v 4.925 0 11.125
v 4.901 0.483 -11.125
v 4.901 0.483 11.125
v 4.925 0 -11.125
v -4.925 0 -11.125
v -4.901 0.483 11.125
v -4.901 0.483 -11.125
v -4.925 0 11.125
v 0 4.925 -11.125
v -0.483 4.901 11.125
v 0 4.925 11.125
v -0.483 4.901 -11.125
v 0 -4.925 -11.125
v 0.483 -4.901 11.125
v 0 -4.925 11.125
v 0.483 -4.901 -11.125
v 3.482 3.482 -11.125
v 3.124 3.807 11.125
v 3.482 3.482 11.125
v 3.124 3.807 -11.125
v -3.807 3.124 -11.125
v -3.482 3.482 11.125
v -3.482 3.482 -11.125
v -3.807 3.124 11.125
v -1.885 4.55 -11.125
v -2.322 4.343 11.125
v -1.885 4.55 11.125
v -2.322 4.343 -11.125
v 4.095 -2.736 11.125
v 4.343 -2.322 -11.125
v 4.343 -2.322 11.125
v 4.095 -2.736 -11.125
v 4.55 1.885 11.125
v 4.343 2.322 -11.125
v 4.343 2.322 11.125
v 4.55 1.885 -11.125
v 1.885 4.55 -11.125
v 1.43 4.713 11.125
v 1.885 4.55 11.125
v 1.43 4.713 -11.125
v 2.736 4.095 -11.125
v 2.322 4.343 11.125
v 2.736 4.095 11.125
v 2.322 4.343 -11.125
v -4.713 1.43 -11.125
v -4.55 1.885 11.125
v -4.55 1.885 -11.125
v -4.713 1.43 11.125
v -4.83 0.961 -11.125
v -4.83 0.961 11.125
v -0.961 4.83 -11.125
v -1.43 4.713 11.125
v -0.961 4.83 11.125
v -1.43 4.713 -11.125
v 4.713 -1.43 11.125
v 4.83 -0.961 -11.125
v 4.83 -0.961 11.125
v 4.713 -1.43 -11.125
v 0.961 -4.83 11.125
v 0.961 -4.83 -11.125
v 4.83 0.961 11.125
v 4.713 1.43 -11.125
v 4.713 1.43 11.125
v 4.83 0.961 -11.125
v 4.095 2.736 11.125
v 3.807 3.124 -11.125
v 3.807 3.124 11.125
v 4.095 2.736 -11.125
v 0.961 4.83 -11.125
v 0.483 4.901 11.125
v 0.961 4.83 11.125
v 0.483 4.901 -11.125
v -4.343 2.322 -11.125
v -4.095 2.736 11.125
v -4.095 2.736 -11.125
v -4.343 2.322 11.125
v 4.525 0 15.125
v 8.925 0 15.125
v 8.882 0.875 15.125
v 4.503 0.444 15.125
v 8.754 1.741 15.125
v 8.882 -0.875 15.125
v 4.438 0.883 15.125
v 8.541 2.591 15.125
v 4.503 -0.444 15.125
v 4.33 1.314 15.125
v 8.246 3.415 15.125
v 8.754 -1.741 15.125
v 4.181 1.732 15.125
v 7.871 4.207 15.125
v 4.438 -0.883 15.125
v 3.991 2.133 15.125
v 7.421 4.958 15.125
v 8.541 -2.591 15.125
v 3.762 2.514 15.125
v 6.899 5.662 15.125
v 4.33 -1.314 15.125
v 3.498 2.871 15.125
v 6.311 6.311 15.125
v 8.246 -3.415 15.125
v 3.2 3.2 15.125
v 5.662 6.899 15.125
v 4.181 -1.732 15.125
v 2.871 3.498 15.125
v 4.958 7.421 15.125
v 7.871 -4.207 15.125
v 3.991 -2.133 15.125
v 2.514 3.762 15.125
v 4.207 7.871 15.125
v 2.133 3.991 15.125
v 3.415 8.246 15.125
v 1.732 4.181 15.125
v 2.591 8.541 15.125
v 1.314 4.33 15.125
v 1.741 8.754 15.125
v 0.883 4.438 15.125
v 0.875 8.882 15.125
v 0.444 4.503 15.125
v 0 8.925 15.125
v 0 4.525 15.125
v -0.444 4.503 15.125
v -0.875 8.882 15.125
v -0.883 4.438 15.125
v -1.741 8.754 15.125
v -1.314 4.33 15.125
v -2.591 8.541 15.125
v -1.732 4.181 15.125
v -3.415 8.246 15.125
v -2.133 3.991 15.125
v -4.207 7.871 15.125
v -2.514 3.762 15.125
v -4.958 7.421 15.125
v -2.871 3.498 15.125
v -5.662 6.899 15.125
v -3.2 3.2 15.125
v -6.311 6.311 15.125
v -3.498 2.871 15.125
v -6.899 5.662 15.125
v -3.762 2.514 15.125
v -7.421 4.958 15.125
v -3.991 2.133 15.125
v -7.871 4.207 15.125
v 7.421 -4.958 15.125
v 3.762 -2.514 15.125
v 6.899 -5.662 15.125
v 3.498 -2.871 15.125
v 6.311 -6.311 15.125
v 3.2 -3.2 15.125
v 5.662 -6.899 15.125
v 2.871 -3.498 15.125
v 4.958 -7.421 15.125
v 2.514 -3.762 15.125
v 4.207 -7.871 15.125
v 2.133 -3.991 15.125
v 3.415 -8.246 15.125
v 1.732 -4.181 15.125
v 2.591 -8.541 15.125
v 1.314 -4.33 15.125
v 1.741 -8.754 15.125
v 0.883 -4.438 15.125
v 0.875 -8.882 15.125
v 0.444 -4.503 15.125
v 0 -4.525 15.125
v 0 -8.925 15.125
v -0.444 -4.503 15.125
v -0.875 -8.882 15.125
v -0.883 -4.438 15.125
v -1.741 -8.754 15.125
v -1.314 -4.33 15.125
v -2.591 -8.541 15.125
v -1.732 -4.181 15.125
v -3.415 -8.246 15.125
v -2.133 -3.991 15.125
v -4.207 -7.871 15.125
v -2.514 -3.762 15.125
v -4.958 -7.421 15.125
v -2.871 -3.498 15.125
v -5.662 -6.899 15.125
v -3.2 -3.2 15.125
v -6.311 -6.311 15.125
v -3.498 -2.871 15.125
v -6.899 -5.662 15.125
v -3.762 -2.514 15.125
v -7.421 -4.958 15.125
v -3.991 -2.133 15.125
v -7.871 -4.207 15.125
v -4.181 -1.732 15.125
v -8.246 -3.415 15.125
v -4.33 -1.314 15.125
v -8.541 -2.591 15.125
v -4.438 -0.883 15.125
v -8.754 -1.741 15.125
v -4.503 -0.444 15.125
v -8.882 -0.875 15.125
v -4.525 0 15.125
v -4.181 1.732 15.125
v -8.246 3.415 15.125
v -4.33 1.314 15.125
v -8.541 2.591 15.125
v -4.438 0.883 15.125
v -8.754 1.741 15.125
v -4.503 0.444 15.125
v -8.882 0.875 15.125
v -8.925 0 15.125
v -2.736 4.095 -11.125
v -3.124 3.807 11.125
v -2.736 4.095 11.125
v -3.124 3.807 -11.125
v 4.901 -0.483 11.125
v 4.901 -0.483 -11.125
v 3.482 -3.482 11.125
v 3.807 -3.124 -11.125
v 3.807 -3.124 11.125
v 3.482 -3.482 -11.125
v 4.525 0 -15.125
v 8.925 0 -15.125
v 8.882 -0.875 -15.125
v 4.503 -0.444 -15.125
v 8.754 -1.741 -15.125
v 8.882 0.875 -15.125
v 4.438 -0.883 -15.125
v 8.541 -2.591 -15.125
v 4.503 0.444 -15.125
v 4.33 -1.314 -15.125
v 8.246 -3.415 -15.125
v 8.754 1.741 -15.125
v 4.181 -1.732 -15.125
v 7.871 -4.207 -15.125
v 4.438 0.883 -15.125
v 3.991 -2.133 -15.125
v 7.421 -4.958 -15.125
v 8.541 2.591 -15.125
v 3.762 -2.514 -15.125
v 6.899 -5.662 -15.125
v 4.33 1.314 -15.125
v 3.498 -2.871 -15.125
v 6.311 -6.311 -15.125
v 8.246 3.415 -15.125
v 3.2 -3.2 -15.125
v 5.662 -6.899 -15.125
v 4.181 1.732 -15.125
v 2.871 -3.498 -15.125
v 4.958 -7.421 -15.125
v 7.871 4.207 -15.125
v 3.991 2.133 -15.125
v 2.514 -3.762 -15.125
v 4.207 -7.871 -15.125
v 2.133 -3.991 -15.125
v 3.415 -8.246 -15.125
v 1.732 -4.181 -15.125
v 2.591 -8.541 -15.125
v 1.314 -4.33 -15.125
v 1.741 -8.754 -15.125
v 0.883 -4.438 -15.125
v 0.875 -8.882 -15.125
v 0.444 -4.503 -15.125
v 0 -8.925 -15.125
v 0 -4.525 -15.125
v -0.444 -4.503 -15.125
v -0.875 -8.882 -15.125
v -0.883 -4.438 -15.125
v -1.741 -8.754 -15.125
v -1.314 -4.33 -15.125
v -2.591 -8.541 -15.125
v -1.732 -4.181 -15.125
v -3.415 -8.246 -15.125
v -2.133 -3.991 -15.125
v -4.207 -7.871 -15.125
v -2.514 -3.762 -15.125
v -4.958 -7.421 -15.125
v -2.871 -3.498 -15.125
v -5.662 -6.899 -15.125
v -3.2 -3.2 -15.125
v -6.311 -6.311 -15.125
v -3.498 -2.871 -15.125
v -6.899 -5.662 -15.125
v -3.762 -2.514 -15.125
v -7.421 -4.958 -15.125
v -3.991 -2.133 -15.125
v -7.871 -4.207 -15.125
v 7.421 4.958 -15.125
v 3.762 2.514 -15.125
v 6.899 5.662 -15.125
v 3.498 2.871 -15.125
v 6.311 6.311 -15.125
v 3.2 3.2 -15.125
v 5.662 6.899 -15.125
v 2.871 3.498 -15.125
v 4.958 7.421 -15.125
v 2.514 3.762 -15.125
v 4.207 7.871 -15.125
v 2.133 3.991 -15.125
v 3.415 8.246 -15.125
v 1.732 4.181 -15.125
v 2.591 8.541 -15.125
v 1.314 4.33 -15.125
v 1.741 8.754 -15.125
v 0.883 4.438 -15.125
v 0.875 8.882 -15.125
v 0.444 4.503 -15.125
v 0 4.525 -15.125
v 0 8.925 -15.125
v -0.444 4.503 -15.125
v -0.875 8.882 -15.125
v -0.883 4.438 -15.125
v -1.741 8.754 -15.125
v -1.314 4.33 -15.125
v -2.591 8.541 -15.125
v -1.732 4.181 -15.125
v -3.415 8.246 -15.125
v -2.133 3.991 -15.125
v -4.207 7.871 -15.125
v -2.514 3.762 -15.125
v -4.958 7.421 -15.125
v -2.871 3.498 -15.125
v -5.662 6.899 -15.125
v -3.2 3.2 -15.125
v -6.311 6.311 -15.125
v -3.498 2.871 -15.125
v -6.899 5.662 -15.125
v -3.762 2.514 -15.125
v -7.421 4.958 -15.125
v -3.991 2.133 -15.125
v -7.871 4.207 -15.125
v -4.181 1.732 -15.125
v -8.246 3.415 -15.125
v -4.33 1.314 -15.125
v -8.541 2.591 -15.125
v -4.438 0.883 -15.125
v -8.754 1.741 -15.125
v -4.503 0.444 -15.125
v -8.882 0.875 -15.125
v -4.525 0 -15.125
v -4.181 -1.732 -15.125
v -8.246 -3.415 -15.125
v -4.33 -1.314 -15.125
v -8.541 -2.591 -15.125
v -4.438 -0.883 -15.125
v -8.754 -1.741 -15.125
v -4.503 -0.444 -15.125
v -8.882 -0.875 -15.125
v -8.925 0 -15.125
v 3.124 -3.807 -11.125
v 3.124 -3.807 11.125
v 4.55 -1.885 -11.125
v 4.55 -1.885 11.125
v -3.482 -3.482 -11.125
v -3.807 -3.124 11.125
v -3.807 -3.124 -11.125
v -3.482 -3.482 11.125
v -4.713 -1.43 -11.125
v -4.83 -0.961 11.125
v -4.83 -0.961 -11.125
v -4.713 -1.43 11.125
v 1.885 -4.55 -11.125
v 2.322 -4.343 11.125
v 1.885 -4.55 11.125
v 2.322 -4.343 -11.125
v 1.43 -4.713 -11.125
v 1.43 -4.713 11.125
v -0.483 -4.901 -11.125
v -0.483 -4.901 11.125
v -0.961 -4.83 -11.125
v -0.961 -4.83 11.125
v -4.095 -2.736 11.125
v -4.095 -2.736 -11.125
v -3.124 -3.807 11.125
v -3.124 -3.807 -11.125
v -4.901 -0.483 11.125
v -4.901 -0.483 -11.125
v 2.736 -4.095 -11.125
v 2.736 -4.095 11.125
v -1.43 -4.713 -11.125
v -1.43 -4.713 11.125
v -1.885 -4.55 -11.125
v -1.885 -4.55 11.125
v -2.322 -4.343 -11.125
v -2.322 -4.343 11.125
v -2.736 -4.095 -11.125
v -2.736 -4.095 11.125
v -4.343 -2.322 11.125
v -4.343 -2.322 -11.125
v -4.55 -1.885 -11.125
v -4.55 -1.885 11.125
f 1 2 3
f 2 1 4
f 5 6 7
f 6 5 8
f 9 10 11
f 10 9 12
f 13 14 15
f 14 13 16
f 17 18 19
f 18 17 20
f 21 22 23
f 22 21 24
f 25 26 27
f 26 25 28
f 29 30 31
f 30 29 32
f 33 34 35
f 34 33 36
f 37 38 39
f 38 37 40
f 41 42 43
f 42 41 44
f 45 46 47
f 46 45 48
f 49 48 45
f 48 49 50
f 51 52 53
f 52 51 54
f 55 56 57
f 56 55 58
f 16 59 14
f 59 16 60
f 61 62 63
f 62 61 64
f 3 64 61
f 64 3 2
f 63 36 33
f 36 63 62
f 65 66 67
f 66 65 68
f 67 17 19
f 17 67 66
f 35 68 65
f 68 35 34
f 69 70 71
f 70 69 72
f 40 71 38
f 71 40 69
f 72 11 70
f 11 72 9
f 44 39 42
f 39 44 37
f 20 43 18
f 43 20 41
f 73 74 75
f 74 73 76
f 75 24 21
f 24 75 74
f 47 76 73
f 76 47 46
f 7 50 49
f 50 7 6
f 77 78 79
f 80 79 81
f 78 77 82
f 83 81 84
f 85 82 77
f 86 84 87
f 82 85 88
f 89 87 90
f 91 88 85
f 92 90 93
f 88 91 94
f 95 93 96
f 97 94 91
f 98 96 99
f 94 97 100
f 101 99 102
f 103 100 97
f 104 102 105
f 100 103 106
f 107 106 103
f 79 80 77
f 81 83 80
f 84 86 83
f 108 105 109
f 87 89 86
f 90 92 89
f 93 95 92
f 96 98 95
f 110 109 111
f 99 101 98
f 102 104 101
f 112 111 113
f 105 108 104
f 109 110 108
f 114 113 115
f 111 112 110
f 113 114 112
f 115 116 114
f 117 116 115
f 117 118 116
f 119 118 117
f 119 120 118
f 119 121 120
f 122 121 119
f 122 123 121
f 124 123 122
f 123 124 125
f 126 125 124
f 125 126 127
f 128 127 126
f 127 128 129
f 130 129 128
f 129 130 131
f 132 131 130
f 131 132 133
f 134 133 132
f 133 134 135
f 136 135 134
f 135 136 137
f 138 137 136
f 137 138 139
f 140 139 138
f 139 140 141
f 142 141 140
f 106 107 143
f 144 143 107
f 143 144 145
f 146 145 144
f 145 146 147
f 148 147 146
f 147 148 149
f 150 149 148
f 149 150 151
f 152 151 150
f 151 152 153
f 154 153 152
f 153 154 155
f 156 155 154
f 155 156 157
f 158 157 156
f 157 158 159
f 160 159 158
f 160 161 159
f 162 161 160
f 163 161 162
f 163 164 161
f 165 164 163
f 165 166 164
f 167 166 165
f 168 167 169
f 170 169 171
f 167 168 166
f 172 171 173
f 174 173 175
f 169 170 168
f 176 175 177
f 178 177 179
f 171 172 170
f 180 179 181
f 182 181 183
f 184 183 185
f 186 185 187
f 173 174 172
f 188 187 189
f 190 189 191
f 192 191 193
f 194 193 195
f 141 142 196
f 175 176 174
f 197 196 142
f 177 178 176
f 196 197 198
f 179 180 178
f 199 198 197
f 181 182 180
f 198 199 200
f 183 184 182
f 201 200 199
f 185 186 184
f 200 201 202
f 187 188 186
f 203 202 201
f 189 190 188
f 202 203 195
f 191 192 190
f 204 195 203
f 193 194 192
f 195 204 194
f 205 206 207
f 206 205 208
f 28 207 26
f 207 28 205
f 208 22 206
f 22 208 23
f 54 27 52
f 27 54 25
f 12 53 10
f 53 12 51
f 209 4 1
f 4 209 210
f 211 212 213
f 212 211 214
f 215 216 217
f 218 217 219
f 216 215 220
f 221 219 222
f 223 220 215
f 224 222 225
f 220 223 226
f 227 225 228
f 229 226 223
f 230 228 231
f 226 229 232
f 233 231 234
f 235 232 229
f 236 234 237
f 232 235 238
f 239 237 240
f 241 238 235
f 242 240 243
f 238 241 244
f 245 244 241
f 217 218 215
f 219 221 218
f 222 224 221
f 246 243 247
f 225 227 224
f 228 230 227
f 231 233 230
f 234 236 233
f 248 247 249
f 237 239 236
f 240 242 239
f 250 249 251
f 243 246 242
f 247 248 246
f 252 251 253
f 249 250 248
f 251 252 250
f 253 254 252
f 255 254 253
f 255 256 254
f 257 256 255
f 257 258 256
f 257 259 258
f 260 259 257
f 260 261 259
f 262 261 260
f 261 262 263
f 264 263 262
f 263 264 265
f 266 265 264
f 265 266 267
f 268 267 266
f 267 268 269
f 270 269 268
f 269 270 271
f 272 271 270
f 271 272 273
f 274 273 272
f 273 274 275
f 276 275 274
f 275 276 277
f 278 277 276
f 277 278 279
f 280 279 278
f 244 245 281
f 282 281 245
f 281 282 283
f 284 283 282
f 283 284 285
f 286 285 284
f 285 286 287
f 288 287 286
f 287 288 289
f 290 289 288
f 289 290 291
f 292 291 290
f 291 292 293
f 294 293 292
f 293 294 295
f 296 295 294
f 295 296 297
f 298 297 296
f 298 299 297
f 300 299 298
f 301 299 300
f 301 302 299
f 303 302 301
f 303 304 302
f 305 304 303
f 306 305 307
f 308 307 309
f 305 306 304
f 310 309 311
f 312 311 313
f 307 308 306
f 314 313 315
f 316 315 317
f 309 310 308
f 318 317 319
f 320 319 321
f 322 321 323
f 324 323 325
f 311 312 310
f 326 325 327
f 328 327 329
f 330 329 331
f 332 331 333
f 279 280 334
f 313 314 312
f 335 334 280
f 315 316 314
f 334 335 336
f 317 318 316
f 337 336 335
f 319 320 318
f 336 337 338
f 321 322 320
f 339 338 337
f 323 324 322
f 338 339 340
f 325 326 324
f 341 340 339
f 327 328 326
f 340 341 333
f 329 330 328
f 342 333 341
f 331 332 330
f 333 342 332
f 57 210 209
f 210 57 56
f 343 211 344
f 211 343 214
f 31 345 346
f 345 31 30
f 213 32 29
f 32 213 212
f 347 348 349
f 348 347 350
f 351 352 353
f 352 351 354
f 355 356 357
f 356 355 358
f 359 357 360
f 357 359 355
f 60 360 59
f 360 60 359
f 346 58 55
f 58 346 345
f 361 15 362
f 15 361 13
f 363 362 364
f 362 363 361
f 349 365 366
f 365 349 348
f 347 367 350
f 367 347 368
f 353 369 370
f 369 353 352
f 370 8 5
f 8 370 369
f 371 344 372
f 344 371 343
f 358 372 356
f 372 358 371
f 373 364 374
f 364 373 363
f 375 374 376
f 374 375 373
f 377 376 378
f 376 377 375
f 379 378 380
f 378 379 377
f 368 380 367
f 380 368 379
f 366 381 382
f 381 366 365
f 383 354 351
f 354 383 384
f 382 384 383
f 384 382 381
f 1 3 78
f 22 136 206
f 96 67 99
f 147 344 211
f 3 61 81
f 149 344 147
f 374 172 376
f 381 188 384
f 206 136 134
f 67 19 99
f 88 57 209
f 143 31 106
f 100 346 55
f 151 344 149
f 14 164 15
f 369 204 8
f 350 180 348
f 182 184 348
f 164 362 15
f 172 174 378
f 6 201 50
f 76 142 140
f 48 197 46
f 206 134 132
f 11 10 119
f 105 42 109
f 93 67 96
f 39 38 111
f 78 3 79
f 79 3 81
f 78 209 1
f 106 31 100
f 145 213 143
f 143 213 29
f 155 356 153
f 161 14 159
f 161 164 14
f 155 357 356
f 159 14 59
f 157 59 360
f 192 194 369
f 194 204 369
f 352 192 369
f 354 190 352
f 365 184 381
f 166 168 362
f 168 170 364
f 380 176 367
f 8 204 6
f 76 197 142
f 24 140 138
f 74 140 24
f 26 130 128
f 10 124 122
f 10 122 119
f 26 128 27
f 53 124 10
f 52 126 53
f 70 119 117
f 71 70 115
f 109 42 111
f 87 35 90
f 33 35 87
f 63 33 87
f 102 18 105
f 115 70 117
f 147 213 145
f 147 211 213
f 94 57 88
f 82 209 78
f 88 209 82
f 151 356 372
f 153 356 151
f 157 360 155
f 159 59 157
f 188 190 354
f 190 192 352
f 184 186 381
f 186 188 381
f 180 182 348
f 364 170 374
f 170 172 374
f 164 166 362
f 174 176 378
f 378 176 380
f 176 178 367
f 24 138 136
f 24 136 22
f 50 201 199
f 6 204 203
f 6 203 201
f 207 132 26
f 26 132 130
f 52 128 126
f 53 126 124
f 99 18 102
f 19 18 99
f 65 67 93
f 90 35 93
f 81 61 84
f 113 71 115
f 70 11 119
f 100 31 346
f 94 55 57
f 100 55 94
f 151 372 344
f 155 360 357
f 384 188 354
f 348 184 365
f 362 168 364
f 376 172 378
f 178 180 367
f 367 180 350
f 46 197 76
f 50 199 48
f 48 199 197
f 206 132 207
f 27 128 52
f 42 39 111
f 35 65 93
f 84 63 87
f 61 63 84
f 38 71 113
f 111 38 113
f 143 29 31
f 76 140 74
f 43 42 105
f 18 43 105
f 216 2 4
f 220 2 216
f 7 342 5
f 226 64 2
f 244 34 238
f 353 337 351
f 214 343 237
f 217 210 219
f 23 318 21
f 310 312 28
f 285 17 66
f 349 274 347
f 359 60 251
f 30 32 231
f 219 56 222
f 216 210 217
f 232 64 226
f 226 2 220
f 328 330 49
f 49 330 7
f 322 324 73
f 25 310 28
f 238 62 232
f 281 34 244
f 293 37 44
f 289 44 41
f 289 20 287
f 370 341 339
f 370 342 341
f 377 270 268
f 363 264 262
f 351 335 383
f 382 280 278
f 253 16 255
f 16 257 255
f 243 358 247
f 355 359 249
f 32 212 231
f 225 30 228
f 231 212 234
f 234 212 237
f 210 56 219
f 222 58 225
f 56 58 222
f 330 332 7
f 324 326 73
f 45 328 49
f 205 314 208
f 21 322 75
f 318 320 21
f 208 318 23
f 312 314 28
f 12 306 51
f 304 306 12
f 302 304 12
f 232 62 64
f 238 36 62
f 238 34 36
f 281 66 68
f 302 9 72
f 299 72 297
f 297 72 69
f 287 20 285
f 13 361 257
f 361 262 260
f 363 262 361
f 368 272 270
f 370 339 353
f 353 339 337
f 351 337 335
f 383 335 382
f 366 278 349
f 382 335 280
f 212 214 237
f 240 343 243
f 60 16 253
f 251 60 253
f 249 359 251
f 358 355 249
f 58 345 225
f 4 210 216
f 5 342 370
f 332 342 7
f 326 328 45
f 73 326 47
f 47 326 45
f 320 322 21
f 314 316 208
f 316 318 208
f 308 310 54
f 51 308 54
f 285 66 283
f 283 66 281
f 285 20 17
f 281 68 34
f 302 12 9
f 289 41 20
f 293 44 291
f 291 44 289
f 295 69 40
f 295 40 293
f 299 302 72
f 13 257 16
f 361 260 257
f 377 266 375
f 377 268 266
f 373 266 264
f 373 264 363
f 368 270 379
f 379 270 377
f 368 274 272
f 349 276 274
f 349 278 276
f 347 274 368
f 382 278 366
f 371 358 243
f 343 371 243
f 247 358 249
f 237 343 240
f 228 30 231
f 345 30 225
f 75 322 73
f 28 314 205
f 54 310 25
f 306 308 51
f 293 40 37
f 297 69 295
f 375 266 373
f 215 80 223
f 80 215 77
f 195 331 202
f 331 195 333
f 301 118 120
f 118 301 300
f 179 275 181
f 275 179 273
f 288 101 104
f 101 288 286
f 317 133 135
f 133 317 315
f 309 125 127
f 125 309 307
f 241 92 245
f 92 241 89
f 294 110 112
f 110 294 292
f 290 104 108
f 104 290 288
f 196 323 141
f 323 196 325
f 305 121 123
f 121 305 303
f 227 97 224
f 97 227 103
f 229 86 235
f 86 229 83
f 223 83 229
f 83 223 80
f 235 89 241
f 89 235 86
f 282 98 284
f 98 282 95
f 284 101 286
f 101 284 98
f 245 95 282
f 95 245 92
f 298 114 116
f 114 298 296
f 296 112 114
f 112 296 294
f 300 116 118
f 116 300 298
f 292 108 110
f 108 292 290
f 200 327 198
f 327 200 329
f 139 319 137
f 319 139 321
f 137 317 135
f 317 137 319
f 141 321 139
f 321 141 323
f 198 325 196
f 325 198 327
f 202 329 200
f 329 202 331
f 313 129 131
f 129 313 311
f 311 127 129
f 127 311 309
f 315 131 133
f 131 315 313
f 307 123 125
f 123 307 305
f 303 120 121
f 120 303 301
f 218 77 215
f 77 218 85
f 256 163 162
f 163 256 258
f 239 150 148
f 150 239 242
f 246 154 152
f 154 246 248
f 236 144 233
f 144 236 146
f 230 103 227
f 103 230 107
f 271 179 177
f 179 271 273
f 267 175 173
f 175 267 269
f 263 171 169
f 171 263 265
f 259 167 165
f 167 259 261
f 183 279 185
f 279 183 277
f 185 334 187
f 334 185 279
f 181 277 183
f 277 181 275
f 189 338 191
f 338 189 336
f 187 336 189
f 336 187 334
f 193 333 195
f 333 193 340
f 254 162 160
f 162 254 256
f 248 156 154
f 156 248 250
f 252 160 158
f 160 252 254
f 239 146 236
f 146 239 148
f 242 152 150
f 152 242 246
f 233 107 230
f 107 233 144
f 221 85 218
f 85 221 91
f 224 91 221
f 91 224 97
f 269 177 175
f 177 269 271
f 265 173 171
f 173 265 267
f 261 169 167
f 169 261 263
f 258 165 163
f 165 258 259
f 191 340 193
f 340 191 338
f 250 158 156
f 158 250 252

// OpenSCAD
rdiam=8.1;
rlength=30.25;
padj=0.95;
wthick=0.4;
bdiam=4;
bthick=4;

difference() {
    union() {
        translate([0,0,0])
            cylinder(d=rdiam+padj+2*wthick, h=rlength, center=true, $fn=64);
        translate([0,0,rlength/2-bthick/2])
            cylinder(d2=rdiam+padj+2*wthick+2*bdiam, d1=rdiam+padj+2*wthick, h=bthick, center=true, $fn=64);
        translate([0,0,-rlength/2+bthick/2])
            cylinder(d1=rdiam+padj+2*wthick+2*bdiam, d2=rdiam+padj+2*wthick, h=bthick, center=true, $fn=64);
        
    }
    translate([0,0,0])
        cylinder(d=rdiam+padj, h=rlength, center=true, $fn=64);
}
